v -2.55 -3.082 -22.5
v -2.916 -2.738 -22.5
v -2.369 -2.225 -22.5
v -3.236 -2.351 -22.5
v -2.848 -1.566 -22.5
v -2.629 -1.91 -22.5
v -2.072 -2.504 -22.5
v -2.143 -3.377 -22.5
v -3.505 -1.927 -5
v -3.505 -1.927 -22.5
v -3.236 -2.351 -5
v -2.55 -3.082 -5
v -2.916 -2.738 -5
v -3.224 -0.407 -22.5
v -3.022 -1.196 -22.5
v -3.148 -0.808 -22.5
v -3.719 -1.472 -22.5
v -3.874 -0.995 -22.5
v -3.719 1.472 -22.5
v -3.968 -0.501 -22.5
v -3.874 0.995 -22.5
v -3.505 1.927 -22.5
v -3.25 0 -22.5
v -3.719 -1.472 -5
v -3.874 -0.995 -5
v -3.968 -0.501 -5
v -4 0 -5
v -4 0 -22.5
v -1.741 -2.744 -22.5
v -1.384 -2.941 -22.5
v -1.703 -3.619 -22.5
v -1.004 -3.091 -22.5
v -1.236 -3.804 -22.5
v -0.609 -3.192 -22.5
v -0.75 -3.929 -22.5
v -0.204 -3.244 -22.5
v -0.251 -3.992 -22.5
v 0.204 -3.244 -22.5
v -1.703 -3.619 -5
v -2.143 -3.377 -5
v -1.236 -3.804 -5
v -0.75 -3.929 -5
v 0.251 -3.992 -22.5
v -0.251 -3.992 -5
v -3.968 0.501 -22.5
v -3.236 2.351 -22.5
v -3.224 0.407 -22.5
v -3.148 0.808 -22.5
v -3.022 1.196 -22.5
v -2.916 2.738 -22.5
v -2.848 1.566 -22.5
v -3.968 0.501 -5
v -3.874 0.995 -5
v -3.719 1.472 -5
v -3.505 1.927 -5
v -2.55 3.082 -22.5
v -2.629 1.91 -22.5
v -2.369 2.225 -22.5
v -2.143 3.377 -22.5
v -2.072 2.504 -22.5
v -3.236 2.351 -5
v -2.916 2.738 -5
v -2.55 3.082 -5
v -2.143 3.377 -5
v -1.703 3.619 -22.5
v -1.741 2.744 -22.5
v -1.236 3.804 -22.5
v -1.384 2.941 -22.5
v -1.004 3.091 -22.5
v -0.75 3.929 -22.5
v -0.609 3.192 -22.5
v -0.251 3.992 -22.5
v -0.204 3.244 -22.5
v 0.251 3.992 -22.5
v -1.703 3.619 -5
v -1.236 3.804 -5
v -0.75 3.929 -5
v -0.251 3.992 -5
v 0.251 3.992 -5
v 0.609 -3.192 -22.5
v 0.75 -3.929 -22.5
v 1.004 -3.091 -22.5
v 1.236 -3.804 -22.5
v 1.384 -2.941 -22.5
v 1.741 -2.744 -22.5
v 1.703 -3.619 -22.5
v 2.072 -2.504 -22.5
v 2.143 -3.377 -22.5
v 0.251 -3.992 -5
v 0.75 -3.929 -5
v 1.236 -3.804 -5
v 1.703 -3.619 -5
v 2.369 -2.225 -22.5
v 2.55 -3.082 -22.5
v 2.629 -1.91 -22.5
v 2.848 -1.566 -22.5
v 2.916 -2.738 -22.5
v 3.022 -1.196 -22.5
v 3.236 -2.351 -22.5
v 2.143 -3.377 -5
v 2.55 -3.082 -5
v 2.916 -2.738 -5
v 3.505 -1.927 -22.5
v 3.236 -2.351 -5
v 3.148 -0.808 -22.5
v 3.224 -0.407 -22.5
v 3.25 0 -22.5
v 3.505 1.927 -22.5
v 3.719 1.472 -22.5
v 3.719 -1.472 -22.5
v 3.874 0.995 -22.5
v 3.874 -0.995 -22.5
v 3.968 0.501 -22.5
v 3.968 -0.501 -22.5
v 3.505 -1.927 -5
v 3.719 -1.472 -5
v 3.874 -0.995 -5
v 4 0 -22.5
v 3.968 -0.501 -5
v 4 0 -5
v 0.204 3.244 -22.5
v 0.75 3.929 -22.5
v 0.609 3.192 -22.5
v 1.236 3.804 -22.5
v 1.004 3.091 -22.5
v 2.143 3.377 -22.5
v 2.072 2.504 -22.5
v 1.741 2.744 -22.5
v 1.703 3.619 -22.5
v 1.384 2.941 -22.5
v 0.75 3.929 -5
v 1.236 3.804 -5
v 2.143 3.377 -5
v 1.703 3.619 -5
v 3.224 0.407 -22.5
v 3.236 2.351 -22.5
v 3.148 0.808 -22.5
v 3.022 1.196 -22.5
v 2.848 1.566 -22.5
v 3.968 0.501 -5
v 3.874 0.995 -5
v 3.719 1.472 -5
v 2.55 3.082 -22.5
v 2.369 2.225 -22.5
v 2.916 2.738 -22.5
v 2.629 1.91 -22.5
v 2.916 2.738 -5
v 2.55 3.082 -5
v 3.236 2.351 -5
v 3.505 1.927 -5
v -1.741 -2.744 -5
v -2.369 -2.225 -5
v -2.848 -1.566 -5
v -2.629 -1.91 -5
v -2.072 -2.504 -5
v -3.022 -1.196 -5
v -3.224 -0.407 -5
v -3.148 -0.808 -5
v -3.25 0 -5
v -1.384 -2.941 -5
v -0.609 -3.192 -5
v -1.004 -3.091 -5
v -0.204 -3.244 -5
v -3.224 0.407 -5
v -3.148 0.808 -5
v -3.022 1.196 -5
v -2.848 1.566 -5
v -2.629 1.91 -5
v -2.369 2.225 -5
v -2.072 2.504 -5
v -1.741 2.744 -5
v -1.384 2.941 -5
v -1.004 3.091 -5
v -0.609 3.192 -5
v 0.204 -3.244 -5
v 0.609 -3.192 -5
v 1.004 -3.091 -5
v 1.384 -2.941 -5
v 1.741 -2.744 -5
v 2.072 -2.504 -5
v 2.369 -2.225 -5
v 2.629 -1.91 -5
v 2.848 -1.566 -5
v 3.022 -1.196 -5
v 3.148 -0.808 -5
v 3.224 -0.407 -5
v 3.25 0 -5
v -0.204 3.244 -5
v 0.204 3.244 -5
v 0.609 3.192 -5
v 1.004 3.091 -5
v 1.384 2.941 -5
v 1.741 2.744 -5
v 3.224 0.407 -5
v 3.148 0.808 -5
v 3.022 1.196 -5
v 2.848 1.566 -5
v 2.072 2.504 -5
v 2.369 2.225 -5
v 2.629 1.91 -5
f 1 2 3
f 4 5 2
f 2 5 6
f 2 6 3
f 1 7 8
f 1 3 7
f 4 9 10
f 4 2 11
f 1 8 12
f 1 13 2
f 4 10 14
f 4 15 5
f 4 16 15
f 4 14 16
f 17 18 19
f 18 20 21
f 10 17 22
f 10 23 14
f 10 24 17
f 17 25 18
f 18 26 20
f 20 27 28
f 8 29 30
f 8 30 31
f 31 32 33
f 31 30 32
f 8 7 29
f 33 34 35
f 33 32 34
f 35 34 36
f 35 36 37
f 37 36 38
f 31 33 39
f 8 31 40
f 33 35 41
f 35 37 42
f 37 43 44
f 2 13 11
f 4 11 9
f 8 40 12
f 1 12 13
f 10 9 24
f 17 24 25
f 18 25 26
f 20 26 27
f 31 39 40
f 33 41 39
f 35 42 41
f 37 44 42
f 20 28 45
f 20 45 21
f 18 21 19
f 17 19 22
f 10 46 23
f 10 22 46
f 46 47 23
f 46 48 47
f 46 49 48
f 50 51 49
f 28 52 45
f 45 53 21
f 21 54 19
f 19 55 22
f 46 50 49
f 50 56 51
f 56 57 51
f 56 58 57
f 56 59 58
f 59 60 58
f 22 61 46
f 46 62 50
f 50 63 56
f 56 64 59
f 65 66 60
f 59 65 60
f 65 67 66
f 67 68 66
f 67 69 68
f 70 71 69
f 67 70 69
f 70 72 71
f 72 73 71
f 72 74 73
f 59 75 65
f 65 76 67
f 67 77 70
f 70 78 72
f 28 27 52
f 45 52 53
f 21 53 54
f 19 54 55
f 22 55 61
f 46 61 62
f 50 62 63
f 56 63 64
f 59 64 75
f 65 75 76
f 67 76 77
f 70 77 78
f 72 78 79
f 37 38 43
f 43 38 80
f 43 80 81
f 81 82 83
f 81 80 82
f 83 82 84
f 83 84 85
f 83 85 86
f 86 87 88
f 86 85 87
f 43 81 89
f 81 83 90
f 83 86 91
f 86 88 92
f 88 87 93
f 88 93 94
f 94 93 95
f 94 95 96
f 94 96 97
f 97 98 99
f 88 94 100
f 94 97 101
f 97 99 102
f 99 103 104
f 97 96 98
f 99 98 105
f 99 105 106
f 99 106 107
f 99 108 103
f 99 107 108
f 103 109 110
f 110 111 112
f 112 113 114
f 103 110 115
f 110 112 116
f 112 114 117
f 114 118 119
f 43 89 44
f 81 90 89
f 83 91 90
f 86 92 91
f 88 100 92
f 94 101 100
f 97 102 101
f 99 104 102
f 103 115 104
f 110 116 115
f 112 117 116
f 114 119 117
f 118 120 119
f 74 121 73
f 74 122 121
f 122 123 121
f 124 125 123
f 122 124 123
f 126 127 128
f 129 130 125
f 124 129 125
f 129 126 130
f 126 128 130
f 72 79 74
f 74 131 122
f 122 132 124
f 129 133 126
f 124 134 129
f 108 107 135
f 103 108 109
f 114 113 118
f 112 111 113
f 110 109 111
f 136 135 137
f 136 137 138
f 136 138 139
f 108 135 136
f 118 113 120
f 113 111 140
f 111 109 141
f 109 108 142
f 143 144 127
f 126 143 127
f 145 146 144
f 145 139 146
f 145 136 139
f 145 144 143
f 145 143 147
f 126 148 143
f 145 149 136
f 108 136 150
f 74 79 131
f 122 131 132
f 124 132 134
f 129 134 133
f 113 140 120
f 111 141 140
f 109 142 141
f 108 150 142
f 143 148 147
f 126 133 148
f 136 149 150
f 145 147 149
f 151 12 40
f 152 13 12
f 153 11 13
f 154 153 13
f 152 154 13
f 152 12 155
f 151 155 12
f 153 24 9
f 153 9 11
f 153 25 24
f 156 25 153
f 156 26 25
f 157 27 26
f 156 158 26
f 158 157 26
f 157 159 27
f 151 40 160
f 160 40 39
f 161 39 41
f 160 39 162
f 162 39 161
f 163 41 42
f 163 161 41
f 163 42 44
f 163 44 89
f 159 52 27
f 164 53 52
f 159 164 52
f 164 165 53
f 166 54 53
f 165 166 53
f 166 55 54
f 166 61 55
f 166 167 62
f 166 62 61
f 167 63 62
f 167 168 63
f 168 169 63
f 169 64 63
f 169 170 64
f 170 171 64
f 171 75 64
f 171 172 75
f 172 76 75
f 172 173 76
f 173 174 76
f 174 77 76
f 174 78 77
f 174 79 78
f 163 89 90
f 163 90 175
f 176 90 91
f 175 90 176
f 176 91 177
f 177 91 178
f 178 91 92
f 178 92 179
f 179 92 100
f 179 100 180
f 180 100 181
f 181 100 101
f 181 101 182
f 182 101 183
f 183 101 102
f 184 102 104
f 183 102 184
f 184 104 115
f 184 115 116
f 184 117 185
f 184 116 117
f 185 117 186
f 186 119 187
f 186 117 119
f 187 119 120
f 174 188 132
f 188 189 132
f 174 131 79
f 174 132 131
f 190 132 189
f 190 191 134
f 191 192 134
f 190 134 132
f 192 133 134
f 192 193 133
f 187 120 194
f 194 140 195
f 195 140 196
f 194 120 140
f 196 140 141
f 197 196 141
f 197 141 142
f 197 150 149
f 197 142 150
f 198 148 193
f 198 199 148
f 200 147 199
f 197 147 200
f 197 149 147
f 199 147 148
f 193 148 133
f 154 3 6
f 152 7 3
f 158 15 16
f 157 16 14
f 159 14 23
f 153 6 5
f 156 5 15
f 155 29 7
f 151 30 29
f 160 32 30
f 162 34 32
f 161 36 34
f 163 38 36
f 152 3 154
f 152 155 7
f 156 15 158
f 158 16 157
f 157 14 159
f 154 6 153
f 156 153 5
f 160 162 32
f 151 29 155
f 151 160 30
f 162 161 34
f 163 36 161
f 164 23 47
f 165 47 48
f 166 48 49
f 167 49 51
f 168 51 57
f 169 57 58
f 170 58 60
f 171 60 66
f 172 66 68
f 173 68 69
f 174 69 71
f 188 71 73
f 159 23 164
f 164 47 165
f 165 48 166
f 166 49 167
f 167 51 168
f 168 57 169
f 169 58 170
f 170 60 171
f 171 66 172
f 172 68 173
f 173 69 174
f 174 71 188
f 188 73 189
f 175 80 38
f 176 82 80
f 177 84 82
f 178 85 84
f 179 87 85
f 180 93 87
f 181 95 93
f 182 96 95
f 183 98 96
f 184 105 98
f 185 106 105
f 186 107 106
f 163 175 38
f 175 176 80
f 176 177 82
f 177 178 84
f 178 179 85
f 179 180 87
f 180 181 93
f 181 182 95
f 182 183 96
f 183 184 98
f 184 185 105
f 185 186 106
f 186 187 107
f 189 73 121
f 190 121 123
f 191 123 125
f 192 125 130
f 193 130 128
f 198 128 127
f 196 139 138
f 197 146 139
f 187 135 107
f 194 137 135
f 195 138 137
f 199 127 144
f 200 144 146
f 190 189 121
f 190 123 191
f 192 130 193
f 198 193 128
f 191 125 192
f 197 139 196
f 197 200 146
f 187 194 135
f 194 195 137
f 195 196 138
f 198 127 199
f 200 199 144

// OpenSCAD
$fn = 50;

difference() {
	union() {
		translate(v = [0, 0, -22.5]) {
			cylinder(h = 25.5, r = 4.0);
		}
		#translate(v = [0, 0, -24.0]) {
			cylinder(h = 24, r = 2.875);
		}
	}
	union() {
		translate(v = [0, 0, 0]) {
			rotate(a = [0, 0, 0]) {
				difference() {
					union() {
						translate(v = [0, 0, -5]) {
							linear_extrude(height = 5) {
								polygon(points = [[5.914249999999999, 0.0], [2.957125, 5.1218907443321156], [-2.9571249999999982, 5.1218907443321156], [-5.914249999999999, 7.242867331857232e-16], [-2.9571250000000022, -5.121890744332115], [2.9571249999999956, -5.121890744332118]]);
							}
						}
					}
					union();
				}
			}
		}
		#cylinder(h = 3, r = 6.25);
		#translate(v = [0, 0, -100.0]) {
			cylinder(h = 200, r = 3.25);
		}
	}
}
